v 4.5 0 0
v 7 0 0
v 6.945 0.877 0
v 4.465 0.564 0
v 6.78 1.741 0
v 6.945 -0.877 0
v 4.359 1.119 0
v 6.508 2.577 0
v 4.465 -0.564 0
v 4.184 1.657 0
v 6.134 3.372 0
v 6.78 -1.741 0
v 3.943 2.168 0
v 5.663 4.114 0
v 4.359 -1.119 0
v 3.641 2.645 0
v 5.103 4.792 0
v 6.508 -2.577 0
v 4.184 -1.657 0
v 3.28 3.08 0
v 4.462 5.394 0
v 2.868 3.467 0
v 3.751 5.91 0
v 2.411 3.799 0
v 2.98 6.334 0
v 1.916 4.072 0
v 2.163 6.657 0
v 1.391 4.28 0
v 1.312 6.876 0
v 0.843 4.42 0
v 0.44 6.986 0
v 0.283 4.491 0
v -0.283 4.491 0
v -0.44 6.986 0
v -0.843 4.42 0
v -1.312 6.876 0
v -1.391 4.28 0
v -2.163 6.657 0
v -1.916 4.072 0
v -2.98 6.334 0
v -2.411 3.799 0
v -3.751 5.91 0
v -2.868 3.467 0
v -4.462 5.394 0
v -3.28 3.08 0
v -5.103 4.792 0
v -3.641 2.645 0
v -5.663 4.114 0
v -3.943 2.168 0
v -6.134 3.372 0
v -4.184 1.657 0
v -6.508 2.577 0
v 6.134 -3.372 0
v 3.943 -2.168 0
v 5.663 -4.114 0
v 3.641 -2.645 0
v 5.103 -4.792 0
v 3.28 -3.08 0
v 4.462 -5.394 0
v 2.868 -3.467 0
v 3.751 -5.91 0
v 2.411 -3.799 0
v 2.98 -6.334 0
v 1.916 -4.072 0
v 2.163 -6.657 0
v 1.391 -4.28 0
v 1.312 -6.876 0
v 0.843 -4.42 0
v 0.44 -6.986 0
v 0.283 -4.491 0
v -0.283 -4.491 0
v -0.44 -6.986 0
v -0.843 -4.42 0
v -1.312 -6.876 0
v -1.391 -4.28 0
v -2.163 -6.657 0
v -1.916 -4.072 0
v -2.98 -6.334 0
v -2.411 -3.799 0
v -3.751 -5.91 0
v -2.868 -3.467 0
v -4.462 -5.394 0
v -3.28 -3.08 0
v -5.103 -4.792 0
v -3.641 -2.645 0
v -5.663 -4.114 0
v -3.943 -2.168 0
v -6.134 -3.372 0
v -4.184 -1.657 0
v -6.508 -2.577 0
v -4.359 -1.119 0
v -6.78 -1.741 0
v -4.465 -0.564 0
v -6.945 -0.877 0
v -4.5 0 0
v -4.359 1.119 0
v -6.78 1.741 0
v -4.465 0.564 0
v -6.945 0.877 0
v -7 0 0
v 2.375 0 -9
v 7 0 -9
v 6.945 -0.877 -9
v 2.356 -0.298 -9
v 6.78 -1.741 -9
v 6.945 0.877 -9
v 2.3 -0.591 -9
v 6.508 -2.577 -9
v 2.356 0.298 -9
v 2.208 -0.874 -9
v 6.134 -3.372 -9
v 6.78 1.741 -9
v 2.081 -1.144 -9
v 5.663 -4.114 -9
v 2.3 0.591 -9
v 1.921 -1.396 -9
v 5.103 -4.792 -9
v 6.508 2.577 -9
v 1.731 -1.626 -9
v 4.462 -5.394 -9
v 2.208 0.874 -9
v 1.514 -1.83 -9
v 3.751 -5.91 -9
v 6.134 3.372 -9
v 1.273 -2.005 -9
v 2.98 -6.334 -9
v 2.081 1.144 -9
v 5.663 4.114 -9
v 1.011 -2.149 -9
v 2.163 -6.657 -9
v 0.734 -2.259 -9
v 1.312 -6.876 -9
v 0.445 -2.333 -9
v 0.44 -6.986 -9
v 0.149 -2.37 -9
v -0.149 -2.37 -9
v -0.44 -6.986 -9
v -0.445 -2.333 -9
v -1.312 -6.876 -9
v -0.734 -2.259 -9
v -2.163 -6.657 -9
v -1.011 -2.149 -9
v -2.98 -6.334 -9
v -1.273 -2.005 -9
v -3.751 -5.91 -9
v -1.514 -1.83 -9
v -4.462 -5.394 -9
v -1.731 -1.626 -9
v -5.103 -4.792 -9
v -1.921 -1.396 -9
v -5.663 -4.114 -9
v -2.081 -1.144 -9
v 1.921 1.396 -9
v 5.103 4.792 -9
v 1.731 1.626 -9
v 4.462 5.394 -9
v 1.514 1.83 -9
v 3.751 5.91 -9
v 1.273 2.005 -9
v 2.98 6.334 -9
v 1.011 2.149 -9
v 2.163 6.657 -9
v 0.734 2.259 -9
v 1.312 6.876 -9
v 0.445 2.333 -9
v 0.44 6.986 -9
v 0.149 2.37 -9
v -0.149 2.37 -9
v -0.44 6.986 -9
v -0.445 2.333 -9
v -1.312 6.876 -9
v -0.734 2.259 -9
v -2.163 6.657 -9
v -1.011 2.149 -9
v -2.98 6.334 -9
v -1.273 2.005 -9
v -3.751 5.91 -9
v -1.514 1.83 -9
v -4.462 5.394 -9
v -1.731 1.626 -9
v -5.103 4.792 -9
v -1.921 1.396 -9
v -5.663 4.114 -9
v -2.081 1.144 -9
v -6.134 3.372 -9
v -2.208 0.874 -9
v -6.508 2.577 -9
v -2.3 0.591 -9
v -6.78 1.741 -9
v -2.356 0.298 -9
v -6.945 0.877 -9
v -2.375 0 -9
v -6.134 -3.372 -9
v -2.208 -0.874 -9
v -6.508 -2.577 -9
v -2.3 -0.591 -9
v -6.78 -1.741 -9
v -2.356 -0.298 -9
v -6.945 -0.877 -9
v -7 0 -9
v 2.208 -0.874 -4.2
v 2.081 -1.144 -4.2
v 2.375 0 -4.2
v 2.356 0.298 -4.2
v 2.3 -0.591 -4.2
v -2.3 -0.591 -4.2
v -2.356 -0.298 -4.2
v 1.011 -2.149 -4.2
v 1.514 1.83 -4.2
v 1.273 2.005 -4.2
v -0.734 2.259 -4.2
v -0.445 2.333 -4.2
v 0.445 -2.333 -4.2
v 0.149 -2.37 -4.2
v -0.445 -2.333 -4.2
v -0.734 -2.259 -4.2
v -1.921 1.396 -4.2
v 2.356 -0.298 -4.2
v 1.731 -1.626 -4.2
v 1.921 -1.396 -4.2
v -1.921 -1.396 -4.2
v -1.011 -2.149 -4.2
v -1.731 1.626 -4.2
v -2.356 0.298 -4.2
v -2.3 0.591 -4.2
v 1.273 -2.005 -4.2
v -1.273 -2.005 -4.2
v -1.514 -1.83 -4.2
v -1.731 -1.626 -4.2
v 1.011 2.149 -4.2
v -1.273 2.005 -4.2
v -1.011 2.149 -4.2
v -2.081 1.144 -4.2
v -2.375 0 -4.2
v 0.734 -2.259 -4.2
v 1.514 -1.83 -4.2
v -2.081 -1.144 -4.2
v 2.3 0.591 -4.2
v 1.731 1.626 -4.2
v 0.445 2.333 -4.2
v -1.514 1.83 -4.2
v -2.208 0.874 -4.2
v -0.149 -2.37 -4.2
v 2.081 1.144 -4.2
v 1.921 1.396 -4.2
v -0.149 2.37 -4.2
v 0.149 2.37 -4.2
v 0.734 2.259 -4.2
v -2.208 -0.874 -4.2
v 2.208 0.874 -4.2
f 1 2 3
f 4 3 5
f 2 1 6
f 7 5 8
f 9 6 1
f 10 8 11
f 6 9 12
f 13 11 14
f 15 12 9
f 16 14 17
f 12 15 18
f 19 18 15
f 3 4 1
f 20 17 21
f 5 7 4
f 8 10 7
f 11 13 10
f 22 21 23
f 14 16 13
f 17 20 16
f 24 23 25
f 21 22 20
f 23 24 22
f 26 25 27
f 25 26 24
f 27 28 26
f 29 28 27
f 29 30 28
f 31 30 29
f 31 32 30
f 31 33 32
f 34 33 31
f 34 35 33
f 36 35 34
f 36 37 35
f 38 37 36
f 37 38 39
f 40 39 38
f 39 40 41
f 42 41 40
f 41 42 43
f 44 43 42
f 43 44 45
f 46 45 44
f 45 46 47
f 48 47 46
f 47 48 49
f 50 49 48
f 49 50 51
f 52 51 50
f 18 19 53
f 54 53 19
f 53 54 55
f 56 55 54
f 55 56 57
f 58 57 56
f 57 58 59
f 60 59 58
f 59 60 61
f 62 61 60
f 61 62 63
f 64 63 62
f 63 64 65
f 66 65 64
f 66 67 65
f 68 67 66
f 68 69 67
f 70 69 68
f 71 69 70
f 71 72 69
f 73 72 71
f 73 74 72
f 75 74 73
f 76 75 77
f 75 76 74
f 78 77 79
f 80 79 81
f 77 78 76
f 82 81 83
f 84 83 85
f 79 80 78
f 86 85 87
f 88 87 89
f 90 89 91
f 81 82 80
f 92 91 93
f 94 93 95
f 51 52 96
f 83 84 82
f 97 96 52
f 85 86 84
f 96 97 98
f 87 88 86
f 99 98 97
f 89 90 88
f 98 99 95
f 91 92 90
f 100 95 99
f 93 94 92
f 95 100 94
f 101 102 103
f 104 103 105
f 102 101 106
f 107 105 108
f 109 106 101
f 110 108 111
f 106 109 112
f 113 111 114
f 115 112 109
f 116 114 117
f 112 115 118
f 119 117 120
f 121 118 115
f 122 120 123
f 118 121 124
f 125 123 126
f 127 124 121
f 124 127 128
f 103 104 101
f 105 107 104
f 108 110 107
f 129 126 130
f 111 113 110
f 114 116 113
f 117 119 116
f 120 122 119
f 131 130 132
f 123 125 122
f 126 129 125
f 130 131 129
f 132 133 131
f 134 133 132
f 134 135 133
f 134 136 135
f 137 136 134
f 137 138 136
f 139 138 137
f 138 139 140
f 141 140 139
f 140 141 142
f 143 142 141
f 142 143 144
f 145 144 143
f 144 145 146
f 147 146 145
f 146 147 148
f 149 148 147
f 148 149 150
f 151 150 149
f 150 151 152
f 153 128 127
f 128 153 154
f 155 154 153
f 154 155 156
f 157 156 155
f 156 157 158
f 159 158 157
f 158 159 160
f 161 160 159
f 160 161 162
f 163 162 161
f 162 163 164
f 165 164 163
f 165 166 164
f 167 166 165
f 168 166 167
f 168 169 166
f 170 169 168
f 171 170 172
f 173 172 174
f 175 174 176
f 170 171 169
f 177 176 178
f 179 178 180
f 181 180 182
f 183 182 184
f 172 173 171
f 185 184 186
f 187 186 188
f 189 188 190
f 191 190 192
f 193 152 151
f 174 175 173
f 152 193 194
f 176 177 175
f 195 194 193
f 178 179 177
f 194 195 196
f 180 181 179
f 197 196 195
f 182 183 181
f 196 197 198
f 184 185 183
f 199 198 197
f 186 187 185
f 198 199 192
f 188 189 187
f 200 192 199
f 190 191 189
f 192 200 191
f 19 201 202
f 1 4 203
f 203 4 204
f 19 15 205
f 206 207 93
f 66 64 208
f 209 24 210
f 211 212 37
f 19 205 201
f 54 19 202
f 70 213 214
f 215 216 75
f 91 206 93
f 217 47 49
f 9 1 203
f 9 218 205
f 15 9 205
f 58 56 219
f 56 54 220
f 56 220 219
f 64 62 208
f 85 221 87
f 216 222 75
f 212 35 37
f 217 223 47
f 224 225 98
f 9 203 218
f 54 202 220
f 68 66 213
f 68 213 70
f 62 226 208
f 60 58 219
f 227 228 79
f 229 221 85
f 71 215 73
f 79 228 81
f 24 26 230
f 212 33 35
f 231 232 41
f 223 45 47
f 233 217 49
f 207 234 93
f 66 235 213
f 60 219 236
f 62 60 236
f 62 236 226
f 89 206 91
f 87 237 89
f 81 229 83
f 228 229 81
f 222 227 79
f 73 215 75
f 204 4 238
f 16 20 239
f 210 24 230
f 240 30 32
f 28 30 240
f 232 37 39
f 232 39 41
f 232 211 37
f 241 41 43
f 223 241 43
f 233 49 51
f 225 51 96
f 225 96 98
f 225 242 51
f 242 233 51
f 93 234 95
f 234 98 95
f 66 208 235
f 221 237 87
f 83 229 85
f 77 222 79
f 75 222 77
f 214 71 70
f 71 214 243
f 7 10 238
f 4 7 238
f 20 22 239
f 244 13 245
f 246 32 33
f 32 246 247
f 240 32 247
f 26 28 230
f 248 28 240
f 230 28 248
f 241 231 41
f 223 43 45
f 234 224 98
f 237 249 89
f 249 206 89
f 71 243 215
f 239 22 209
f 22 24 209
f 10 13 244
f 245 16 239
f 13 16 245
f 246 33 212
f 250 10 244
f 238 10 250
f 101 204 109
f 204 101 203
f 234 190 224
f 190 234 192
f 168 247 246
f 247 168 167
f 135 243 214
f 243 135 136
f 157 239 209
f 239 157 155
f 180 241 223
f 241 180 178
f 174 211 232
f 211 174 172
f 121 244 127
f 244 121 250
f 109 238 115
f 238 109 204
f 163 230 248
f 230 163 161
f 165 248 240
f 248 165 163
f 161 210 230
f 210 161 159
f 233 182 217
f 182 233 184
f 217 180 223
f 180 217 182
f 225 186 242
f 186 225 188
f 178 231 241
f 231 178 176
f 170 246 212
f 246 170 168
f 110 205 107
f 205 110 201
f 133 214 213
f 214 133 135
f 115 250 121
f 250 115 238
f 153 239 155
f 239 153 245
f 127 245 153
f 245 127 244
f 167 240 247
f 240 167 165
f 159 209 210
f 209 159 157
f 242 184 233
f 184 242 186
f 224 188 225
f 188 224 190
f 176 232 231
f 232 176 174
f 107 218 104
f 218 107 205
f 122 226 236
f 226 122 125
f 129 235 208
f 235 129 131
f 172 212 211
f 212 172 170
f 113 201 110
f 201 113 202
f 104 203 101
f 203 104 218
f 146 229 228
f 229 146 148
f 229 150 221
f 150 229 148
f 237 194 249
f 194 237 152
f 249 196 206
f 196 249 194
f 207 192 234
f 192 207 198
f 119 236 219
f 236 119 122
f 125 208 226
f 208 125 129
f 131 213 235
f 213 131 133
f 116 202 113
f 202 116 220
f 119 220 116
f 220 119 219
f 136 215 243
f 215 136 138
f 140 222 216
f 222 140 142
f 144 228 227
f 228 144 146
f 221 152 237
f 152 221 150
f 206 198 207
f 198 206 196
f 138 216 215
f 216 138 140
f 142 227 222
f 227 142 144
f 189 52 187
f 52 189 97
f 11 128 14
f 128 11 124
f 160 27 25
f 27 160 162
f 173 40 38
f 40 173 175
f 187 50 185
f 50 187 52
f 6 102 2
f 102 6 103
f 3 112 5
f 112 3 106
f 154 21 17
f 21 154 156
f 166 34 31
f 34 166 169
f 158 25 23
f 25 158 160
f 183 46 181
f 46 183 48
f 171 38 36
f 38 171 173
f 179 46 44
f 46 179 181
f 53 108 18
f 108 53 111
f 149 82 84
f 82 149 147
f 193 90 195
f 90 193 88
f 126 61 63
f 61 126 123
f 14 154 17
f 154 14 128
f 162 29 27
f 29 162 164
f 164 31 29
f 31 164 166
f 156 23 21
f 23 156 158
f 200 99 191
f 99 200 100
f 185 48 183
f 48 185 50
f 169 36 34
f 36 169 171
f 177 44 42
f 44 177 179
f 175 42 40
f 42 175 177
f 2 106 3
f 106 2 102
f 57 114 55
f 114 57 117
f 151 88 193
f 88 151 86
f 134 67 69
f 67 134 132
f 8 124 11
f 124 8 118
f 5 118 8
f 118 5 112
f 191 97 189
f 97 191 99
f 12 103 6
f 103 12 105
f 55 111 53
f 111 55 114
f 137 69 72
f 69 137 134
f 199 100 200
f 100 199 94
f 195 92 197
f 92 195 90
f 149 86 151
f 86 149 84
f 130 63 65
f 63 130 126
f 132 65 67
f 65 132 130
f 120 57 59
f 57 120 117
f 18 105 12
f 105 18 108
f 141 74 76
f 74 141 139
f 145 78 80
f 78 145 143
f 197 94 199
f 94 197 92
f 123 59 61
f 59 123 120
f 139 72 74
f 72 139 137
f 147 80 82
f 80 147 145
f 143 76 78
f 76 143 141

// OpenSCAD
$fn = 50;


difference() {
	union() {
		translate(v = [0, 0, -9.0000000000]) {
			cylinder(h = 9, r = 7.0000000000);
		}
	}
	union() {
		translate(v = [0, 0, 0]) {
			rotate(a = [0, 0, 0]) {
				difference() {
					union() {
						translate(v = [0, 0, -9.0000000000]) {
							cylinder(h = 9, r = 2.2500000000);
						}
						translate(v = [0, 0, -4.2000000000]) {
							cylinder(h = 4.2000000000, r1 = 2.3750000000, r2 = 4.5000000000);
						}
						translate(v = [0, 0, -9.0000000000]) {
							cylinder(h = 9, r = 2.3750000000);
						}
						translate(v = [0, 0, -9.0000000000]) {
							cylinder(h = 9, r = 2.2500000000);
						}
					}
					union();
				}
			}
		}
	}
}
